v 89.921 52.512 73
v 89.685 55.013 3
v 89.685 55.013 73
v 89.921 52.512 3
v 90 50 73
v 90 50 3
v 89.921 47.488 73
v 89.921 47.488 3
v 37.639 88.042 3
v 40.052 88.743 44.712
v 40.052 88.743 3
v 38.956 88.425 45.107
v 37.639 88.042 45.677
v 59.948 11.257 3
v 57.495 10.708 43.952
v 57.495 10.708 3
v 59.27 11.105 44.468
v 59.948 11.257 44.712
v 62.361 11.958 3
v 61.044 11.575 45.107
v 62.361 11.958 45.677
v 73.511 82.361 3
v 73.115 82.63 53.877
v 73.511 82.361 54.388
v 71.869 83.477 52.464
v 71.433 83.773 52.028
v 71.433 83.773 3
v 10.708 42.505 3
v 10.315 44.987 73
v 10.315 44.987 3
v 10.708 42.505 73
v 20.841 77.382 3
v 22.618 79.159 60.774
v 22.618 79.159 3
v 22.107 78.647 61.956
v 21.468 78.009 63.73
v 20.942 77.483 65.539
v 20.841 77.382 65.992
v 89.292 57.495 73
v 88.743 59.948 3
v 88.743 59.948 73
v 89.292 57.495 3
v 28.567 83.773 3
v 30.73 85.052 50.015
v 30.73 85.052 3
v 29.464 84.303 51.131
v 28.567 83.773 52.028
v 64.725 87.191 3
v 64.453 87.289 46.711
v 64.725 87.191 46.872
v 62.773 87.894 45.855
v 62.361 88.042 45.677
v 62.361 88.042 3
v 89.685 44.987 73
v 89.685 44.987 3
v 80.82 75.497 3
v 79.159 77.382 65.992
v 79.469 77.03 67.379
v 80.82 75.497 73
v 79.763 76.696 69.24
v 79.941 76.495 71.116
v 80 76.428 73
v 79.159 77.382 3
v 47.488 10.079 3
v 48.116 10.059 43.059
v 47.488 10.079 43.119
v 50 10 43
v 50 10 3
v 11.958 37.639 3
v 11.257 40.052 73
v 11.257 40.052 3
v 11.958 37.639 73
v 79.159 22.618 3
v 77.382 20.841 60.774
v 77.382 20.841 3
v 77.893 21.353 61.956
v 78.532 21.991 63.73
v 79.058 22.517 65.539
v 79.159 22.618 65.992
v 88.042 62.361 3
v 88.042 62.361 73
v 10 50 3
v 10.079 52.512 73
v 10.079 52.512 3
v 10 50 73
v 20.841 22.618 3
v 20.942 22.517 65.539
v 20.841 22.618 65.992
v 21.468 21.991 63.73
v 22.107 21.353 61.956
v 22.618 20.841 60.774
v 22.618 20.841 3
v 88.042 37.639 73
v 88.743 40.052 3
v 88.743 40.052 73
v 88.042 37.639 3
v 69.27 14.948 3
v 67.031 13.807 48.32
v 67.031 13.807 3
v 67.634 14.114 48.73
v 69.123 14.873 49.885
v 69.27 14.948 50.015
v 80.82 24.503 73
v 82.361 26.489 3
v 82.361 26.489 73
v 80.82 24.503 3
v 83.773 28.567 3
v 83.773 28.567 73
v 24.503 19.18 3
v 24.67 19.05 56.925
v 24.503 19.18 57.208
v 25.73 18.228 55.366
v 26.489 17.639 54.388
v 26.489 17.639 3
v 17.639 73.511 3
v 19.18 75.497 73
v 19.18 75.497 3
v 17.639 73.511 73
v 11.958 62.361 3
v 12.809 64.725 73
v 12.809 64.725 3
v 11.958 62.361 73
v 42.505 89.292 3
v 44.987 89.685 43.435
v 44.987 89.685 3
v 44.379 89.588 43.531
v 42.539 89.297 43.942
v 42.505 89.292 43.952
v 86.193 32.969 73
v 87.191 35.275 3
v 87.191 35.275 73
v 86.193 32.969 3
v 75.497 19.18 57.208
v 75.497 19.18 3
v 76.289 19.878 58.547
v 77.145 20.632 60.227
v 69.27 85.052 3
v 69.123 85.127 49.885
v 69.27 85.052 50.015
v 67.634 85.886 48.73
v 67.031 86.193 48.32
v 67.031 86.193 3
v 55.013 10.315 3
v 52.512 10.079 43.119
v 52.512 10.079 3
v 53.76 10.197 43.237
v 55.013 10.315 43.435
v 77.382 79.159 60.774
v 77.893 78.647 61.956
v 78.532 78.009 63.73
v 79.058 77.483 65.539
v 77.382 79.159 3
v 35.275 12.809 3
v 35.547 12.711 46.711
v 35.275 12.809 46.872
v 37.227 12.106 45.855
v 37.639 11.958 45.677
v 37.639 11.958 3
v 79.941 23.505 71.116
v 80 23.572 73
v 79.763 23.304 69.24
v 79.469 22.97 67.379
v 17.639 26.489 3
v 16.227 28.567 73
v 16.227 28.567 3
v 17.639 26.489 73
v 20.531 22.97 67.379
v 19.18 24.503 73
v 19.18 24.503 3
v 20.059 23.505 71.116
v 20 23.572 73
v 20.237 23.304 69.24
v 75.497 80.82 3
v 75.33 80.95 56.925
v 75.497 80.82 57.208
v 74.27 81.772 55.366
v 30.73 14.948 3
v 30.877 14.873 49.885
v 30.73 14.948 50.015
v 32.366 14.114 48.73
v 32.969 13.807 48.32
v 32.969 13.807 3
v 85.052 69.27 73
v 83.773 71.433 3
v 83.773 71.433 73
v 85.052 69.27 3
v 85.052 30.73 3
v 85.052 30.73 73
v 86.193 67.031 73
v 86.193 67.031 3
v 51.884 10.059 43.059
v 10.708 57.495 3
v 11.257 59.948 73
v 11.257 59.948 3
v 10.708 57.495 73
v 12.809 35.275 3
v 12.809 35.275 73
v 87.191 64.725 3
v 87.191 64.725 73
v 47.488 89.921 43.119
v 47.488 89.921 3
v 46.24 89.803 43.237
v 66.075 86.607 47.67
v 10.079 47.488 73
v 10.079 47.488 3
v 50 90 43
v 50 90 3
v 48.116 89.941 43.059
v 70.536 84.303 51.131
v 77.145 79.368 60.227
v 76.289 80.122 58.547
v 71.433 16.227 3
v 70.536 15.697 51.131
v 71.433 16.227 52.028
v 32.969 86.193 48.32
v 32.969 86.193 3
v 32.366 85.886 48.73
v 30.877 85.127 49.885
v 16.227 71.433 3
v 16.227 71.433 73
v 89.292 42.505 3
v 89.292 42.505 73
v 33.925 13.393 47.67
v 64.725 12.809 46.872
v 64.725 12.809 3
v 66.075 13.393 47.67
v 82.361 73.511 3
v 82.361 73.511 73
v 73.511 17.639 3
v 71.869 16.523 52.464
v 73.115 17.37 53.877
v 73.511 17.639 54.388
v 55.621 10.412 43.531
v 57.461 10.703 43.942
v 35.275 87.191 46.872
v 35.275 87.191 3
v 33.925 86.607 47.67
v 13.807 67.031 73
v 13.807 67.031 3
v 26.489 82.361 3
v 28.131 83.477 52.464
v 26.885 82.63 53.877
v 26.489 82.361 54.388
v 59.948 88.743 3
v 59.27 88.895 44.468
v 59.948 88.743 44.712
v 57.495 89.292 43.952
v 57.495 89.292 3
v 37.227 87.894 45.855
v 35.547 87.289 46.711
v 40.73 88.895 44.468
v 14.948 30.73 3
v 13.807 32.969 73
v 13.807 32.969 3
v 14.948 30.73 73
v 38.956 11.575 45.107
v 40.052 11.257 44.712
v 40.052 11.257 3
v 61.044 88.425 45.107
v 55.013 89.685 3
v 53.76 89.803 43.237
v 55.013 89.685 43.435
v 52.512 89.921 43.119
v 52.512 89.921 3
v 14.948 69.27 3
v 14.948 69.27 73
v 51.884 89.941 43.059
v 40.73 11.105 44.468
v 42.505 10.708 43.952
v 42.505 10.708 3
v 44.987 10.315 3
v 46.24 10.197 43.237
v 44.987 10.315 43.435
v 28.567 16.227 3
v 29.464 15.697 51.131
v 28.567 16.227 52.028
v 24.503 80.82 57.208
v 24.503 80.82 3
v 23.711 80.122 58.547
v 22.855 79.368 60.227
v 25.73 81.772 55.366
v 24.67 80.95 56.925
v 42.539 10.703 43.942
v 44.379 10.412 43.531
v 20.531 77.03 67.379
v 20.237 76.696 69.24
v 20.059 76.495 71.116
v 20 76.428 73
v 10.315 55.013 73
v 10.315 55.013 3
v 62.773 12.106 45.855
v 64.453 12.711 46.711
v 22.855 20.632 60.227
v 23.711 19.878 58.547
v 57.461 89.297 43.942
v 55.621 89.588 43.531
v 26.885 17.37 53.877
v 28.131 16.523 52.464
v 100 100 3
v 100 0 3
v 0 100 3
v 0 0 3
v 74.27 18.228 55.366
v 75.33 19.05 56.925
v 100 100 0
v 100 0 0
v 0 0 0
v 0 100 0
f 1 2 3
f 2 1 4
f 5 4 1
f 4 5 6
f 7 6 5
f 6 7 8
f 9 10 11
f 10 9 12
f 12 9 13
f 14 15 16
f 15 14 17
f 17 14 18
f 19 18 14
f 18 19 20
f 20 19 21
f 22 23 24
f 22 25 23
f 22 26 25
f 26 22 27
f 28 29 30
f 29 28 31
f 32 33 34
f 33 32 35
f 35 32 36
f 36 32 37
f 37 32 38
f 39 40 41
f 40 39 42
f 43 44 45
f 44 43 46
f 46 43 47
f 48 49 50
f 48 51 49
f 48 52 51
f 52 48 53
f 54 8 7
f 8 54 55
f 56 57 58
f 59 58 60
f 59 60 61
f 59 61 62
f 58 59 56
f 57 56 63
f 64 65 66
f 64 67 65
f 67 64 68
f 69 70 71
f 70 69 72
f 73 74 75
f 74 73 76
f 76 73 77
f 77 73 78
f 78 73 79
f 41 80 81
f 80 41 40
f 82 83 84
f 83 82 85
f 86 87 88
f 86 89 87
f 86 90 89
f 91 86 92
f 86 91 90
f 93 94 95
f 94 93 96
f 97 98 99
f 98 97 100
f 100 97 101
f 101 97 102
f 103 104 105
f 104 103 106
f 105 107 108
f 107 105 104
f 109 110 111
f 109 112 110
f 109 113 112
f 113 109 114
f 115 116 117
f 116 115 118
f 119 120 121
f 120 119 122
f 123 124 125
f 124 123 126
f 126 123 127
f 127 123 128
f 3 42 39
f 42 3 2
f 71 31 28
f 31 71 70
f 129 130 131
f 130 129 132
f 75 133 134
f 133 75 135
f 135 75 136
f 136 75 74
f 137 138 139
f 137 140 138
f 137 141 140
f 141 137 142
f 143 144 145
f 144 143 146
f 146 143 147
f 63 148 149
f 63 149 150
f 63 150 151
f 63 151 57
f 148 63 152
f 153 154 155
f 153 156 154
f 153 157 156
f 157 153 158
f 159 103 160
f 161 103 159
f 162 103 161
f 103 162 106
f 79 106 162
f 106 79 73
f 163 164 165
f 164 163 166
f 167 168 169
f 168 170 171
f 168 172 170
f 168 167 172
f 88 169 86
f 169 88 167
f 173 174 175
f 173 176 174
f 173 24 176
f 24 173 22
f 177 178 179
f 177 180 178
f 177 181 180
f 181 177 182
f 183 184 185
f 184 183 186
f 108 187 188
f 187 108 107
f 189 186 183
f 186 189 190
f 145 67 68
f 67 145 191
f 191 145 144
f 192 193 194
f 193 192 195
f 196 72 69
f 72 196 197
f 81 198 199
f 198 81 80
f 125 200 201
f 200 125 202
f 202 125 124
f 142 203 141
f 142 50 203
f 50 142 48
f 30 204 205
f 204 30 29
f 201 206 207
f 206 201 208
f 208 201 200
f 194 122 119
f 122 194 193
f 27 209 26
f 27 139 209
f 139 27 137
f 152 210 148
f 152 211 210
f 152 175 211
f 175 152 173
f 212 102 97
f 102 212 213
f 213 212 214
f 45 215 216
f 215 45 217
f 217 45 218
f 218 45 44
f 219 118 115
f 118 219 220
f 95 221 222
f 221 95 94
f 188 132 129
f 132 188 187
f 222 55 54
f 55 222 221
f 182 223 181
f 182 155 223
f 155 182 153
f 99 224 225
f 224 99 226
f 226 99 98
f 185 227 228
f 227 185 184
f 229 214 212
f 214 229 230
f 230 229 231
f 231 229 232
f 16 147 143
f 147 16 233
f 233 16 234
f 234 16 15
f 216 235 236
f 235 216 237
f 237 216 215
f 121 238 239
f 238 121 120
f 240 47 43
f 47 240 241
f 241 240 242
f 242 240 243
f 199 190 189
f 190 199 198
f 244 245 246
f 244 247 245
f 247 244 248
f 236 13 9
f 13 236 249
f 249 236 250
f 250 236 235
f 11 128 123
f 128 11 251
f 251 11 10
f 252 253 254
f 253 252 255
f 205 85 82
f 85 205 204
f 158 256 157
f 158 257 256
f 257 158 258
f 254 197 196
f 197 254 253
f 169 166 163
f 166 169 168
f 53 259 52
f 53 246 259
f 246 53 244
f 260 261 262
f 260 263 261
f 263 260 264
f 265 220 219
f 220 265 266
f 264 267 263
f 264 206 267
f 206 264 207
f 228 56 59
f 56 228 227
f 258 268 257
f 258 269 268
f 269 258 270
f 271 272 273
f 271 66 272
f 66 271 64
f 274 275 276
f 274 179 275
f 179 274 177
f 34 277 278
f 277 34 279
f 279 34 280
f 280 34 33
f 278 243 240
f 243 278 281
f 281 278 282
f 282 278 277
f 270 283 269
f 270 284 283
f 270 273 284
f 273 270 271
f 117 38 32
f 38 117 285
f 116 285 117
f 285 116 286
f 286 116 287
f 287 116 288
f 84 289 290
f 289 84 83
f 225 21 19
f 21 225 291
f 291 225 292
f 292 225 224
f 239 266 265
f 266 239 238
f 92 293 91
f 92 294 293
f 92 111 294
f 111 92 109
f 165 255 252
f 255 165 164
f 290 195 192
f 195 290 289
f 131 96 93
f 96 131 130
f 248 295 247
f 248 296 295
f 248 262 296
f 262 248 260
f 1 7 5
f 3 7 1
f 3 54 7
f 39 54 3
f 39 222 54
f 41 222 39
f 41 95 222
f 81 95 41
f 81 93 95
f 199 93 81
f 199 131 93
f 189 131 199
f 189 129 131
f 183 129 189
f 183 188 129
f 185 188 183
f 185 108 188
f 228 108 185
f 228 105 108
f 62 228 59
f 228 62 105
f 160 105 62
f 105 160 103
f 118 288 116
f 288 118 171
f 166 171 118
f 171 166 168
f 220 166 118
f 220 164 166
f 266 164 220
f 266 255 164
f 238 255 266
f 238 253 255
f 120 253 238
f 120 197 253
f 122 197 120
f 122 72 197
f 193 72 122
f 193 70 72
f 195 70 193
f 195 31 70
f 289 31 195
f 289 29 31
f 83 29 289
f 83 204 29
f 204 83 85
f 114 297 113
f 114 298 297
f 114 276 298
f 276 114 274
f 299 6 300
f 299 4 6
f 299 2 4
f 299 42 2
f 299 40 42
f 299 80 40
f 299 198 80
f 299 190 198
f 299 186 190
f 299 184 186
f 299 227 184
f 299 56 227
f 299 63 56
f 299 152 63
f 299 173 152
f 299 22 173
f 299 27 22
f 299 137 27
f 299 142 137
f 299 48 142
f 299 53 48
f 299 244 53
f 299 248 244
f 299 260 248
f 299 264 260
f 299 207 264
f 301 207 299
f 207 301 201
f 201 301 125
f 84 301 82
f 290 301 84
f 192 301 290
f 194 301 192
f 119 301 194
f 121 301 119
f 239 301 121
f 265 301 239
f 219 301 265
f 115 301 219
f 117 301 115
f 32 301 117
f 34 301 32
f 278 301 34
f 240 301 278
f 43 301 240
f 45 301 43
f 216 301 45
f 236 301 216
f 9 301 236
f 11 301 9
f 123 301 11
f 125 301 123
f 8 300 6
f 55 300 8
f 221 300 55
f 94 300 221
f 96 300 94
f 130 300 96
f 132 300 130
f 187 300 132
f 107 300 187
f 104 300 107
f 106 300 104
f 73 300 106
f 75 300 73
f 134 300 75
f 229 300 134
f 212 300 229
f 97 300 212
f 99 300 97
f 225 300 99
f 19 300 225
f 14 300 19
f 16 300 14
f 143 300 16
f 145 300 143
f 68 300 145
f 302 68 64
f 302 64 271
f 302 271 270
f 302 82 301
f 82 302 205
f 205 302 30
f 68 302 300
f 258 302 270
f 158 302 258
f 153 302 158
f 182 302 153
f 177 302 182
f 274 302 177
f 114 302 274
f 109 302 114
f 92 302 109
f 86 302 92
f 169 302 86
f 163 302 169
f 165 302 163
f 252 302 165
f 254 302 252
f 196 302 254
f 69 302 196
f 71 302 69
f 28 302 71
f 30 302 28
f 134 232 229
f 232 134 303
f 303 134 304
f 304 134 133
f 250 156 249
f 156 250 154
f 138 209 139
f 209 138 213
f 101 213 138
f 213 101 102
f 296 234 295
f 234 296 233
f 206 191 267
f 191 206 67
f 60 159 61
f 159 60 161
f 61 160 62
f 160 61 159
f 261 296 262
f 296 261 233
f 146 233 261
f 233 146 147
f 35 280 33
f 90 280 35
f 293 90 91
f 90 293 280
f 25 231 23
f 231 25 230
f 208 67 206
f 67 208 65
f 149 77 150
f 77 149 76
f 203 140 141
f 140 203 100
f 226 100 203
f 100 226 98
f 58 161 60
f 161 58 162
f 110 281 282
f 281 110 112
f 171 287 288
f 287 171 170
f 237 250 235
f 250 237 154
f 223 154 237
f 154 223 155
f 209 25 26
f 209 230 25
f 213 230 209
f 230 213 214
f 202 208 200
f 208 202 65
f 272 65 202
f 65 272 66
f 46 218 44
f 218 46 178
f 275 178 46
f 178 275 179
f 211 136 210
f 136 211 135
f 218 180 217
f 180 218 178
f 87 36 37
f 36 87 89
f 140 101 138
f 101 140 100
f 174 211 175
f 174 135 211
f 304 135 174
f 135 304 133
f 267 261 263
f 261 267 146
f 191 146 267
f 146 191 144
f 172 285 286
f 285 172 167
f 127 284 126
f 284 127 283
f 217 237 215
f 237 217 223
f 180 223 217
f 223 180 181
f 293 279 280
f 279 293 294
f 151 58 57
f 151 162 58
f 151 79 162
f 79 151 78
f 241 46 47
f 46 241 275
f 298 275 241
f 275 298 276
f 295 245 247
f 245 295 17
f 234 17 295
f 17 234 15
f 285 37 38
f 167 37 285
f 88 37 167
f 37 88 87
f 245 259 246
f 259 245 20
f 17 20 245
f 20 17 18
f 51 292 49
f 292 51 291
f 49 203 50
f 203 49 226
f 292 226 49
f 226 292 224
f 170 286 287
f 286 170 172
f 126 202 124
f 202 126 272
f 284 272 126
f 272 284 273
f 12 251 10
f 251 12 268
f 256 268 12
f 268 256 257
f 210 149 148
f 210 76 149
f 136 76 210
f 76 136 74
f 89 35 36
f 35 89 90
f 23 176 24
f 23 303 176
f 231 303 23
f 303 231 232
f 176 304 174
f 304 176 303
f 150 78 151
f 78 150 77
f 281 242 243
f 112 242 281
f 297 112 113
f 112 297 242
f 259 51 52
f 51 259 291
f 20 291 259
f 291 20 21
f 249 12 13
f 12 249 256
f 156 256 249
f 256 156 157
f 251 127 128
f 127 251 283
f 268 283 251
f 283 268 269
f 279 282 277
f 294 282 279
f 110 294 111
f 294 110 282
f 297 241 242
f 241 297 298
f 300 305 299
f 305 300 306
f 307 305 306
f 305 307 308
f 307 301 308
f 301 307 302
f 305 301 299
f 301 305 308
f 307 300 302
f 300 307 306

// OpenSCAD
cube(size=[100, 100, 3]);
difference() {
    translate([50, 50, 3]) cylinder(h=70, r=40, $fn=100);
translate([50, 100, 73]) rotate([90, 0, 0]) {
    cylinder(h=100, r=30, $fn=100);
}
}
